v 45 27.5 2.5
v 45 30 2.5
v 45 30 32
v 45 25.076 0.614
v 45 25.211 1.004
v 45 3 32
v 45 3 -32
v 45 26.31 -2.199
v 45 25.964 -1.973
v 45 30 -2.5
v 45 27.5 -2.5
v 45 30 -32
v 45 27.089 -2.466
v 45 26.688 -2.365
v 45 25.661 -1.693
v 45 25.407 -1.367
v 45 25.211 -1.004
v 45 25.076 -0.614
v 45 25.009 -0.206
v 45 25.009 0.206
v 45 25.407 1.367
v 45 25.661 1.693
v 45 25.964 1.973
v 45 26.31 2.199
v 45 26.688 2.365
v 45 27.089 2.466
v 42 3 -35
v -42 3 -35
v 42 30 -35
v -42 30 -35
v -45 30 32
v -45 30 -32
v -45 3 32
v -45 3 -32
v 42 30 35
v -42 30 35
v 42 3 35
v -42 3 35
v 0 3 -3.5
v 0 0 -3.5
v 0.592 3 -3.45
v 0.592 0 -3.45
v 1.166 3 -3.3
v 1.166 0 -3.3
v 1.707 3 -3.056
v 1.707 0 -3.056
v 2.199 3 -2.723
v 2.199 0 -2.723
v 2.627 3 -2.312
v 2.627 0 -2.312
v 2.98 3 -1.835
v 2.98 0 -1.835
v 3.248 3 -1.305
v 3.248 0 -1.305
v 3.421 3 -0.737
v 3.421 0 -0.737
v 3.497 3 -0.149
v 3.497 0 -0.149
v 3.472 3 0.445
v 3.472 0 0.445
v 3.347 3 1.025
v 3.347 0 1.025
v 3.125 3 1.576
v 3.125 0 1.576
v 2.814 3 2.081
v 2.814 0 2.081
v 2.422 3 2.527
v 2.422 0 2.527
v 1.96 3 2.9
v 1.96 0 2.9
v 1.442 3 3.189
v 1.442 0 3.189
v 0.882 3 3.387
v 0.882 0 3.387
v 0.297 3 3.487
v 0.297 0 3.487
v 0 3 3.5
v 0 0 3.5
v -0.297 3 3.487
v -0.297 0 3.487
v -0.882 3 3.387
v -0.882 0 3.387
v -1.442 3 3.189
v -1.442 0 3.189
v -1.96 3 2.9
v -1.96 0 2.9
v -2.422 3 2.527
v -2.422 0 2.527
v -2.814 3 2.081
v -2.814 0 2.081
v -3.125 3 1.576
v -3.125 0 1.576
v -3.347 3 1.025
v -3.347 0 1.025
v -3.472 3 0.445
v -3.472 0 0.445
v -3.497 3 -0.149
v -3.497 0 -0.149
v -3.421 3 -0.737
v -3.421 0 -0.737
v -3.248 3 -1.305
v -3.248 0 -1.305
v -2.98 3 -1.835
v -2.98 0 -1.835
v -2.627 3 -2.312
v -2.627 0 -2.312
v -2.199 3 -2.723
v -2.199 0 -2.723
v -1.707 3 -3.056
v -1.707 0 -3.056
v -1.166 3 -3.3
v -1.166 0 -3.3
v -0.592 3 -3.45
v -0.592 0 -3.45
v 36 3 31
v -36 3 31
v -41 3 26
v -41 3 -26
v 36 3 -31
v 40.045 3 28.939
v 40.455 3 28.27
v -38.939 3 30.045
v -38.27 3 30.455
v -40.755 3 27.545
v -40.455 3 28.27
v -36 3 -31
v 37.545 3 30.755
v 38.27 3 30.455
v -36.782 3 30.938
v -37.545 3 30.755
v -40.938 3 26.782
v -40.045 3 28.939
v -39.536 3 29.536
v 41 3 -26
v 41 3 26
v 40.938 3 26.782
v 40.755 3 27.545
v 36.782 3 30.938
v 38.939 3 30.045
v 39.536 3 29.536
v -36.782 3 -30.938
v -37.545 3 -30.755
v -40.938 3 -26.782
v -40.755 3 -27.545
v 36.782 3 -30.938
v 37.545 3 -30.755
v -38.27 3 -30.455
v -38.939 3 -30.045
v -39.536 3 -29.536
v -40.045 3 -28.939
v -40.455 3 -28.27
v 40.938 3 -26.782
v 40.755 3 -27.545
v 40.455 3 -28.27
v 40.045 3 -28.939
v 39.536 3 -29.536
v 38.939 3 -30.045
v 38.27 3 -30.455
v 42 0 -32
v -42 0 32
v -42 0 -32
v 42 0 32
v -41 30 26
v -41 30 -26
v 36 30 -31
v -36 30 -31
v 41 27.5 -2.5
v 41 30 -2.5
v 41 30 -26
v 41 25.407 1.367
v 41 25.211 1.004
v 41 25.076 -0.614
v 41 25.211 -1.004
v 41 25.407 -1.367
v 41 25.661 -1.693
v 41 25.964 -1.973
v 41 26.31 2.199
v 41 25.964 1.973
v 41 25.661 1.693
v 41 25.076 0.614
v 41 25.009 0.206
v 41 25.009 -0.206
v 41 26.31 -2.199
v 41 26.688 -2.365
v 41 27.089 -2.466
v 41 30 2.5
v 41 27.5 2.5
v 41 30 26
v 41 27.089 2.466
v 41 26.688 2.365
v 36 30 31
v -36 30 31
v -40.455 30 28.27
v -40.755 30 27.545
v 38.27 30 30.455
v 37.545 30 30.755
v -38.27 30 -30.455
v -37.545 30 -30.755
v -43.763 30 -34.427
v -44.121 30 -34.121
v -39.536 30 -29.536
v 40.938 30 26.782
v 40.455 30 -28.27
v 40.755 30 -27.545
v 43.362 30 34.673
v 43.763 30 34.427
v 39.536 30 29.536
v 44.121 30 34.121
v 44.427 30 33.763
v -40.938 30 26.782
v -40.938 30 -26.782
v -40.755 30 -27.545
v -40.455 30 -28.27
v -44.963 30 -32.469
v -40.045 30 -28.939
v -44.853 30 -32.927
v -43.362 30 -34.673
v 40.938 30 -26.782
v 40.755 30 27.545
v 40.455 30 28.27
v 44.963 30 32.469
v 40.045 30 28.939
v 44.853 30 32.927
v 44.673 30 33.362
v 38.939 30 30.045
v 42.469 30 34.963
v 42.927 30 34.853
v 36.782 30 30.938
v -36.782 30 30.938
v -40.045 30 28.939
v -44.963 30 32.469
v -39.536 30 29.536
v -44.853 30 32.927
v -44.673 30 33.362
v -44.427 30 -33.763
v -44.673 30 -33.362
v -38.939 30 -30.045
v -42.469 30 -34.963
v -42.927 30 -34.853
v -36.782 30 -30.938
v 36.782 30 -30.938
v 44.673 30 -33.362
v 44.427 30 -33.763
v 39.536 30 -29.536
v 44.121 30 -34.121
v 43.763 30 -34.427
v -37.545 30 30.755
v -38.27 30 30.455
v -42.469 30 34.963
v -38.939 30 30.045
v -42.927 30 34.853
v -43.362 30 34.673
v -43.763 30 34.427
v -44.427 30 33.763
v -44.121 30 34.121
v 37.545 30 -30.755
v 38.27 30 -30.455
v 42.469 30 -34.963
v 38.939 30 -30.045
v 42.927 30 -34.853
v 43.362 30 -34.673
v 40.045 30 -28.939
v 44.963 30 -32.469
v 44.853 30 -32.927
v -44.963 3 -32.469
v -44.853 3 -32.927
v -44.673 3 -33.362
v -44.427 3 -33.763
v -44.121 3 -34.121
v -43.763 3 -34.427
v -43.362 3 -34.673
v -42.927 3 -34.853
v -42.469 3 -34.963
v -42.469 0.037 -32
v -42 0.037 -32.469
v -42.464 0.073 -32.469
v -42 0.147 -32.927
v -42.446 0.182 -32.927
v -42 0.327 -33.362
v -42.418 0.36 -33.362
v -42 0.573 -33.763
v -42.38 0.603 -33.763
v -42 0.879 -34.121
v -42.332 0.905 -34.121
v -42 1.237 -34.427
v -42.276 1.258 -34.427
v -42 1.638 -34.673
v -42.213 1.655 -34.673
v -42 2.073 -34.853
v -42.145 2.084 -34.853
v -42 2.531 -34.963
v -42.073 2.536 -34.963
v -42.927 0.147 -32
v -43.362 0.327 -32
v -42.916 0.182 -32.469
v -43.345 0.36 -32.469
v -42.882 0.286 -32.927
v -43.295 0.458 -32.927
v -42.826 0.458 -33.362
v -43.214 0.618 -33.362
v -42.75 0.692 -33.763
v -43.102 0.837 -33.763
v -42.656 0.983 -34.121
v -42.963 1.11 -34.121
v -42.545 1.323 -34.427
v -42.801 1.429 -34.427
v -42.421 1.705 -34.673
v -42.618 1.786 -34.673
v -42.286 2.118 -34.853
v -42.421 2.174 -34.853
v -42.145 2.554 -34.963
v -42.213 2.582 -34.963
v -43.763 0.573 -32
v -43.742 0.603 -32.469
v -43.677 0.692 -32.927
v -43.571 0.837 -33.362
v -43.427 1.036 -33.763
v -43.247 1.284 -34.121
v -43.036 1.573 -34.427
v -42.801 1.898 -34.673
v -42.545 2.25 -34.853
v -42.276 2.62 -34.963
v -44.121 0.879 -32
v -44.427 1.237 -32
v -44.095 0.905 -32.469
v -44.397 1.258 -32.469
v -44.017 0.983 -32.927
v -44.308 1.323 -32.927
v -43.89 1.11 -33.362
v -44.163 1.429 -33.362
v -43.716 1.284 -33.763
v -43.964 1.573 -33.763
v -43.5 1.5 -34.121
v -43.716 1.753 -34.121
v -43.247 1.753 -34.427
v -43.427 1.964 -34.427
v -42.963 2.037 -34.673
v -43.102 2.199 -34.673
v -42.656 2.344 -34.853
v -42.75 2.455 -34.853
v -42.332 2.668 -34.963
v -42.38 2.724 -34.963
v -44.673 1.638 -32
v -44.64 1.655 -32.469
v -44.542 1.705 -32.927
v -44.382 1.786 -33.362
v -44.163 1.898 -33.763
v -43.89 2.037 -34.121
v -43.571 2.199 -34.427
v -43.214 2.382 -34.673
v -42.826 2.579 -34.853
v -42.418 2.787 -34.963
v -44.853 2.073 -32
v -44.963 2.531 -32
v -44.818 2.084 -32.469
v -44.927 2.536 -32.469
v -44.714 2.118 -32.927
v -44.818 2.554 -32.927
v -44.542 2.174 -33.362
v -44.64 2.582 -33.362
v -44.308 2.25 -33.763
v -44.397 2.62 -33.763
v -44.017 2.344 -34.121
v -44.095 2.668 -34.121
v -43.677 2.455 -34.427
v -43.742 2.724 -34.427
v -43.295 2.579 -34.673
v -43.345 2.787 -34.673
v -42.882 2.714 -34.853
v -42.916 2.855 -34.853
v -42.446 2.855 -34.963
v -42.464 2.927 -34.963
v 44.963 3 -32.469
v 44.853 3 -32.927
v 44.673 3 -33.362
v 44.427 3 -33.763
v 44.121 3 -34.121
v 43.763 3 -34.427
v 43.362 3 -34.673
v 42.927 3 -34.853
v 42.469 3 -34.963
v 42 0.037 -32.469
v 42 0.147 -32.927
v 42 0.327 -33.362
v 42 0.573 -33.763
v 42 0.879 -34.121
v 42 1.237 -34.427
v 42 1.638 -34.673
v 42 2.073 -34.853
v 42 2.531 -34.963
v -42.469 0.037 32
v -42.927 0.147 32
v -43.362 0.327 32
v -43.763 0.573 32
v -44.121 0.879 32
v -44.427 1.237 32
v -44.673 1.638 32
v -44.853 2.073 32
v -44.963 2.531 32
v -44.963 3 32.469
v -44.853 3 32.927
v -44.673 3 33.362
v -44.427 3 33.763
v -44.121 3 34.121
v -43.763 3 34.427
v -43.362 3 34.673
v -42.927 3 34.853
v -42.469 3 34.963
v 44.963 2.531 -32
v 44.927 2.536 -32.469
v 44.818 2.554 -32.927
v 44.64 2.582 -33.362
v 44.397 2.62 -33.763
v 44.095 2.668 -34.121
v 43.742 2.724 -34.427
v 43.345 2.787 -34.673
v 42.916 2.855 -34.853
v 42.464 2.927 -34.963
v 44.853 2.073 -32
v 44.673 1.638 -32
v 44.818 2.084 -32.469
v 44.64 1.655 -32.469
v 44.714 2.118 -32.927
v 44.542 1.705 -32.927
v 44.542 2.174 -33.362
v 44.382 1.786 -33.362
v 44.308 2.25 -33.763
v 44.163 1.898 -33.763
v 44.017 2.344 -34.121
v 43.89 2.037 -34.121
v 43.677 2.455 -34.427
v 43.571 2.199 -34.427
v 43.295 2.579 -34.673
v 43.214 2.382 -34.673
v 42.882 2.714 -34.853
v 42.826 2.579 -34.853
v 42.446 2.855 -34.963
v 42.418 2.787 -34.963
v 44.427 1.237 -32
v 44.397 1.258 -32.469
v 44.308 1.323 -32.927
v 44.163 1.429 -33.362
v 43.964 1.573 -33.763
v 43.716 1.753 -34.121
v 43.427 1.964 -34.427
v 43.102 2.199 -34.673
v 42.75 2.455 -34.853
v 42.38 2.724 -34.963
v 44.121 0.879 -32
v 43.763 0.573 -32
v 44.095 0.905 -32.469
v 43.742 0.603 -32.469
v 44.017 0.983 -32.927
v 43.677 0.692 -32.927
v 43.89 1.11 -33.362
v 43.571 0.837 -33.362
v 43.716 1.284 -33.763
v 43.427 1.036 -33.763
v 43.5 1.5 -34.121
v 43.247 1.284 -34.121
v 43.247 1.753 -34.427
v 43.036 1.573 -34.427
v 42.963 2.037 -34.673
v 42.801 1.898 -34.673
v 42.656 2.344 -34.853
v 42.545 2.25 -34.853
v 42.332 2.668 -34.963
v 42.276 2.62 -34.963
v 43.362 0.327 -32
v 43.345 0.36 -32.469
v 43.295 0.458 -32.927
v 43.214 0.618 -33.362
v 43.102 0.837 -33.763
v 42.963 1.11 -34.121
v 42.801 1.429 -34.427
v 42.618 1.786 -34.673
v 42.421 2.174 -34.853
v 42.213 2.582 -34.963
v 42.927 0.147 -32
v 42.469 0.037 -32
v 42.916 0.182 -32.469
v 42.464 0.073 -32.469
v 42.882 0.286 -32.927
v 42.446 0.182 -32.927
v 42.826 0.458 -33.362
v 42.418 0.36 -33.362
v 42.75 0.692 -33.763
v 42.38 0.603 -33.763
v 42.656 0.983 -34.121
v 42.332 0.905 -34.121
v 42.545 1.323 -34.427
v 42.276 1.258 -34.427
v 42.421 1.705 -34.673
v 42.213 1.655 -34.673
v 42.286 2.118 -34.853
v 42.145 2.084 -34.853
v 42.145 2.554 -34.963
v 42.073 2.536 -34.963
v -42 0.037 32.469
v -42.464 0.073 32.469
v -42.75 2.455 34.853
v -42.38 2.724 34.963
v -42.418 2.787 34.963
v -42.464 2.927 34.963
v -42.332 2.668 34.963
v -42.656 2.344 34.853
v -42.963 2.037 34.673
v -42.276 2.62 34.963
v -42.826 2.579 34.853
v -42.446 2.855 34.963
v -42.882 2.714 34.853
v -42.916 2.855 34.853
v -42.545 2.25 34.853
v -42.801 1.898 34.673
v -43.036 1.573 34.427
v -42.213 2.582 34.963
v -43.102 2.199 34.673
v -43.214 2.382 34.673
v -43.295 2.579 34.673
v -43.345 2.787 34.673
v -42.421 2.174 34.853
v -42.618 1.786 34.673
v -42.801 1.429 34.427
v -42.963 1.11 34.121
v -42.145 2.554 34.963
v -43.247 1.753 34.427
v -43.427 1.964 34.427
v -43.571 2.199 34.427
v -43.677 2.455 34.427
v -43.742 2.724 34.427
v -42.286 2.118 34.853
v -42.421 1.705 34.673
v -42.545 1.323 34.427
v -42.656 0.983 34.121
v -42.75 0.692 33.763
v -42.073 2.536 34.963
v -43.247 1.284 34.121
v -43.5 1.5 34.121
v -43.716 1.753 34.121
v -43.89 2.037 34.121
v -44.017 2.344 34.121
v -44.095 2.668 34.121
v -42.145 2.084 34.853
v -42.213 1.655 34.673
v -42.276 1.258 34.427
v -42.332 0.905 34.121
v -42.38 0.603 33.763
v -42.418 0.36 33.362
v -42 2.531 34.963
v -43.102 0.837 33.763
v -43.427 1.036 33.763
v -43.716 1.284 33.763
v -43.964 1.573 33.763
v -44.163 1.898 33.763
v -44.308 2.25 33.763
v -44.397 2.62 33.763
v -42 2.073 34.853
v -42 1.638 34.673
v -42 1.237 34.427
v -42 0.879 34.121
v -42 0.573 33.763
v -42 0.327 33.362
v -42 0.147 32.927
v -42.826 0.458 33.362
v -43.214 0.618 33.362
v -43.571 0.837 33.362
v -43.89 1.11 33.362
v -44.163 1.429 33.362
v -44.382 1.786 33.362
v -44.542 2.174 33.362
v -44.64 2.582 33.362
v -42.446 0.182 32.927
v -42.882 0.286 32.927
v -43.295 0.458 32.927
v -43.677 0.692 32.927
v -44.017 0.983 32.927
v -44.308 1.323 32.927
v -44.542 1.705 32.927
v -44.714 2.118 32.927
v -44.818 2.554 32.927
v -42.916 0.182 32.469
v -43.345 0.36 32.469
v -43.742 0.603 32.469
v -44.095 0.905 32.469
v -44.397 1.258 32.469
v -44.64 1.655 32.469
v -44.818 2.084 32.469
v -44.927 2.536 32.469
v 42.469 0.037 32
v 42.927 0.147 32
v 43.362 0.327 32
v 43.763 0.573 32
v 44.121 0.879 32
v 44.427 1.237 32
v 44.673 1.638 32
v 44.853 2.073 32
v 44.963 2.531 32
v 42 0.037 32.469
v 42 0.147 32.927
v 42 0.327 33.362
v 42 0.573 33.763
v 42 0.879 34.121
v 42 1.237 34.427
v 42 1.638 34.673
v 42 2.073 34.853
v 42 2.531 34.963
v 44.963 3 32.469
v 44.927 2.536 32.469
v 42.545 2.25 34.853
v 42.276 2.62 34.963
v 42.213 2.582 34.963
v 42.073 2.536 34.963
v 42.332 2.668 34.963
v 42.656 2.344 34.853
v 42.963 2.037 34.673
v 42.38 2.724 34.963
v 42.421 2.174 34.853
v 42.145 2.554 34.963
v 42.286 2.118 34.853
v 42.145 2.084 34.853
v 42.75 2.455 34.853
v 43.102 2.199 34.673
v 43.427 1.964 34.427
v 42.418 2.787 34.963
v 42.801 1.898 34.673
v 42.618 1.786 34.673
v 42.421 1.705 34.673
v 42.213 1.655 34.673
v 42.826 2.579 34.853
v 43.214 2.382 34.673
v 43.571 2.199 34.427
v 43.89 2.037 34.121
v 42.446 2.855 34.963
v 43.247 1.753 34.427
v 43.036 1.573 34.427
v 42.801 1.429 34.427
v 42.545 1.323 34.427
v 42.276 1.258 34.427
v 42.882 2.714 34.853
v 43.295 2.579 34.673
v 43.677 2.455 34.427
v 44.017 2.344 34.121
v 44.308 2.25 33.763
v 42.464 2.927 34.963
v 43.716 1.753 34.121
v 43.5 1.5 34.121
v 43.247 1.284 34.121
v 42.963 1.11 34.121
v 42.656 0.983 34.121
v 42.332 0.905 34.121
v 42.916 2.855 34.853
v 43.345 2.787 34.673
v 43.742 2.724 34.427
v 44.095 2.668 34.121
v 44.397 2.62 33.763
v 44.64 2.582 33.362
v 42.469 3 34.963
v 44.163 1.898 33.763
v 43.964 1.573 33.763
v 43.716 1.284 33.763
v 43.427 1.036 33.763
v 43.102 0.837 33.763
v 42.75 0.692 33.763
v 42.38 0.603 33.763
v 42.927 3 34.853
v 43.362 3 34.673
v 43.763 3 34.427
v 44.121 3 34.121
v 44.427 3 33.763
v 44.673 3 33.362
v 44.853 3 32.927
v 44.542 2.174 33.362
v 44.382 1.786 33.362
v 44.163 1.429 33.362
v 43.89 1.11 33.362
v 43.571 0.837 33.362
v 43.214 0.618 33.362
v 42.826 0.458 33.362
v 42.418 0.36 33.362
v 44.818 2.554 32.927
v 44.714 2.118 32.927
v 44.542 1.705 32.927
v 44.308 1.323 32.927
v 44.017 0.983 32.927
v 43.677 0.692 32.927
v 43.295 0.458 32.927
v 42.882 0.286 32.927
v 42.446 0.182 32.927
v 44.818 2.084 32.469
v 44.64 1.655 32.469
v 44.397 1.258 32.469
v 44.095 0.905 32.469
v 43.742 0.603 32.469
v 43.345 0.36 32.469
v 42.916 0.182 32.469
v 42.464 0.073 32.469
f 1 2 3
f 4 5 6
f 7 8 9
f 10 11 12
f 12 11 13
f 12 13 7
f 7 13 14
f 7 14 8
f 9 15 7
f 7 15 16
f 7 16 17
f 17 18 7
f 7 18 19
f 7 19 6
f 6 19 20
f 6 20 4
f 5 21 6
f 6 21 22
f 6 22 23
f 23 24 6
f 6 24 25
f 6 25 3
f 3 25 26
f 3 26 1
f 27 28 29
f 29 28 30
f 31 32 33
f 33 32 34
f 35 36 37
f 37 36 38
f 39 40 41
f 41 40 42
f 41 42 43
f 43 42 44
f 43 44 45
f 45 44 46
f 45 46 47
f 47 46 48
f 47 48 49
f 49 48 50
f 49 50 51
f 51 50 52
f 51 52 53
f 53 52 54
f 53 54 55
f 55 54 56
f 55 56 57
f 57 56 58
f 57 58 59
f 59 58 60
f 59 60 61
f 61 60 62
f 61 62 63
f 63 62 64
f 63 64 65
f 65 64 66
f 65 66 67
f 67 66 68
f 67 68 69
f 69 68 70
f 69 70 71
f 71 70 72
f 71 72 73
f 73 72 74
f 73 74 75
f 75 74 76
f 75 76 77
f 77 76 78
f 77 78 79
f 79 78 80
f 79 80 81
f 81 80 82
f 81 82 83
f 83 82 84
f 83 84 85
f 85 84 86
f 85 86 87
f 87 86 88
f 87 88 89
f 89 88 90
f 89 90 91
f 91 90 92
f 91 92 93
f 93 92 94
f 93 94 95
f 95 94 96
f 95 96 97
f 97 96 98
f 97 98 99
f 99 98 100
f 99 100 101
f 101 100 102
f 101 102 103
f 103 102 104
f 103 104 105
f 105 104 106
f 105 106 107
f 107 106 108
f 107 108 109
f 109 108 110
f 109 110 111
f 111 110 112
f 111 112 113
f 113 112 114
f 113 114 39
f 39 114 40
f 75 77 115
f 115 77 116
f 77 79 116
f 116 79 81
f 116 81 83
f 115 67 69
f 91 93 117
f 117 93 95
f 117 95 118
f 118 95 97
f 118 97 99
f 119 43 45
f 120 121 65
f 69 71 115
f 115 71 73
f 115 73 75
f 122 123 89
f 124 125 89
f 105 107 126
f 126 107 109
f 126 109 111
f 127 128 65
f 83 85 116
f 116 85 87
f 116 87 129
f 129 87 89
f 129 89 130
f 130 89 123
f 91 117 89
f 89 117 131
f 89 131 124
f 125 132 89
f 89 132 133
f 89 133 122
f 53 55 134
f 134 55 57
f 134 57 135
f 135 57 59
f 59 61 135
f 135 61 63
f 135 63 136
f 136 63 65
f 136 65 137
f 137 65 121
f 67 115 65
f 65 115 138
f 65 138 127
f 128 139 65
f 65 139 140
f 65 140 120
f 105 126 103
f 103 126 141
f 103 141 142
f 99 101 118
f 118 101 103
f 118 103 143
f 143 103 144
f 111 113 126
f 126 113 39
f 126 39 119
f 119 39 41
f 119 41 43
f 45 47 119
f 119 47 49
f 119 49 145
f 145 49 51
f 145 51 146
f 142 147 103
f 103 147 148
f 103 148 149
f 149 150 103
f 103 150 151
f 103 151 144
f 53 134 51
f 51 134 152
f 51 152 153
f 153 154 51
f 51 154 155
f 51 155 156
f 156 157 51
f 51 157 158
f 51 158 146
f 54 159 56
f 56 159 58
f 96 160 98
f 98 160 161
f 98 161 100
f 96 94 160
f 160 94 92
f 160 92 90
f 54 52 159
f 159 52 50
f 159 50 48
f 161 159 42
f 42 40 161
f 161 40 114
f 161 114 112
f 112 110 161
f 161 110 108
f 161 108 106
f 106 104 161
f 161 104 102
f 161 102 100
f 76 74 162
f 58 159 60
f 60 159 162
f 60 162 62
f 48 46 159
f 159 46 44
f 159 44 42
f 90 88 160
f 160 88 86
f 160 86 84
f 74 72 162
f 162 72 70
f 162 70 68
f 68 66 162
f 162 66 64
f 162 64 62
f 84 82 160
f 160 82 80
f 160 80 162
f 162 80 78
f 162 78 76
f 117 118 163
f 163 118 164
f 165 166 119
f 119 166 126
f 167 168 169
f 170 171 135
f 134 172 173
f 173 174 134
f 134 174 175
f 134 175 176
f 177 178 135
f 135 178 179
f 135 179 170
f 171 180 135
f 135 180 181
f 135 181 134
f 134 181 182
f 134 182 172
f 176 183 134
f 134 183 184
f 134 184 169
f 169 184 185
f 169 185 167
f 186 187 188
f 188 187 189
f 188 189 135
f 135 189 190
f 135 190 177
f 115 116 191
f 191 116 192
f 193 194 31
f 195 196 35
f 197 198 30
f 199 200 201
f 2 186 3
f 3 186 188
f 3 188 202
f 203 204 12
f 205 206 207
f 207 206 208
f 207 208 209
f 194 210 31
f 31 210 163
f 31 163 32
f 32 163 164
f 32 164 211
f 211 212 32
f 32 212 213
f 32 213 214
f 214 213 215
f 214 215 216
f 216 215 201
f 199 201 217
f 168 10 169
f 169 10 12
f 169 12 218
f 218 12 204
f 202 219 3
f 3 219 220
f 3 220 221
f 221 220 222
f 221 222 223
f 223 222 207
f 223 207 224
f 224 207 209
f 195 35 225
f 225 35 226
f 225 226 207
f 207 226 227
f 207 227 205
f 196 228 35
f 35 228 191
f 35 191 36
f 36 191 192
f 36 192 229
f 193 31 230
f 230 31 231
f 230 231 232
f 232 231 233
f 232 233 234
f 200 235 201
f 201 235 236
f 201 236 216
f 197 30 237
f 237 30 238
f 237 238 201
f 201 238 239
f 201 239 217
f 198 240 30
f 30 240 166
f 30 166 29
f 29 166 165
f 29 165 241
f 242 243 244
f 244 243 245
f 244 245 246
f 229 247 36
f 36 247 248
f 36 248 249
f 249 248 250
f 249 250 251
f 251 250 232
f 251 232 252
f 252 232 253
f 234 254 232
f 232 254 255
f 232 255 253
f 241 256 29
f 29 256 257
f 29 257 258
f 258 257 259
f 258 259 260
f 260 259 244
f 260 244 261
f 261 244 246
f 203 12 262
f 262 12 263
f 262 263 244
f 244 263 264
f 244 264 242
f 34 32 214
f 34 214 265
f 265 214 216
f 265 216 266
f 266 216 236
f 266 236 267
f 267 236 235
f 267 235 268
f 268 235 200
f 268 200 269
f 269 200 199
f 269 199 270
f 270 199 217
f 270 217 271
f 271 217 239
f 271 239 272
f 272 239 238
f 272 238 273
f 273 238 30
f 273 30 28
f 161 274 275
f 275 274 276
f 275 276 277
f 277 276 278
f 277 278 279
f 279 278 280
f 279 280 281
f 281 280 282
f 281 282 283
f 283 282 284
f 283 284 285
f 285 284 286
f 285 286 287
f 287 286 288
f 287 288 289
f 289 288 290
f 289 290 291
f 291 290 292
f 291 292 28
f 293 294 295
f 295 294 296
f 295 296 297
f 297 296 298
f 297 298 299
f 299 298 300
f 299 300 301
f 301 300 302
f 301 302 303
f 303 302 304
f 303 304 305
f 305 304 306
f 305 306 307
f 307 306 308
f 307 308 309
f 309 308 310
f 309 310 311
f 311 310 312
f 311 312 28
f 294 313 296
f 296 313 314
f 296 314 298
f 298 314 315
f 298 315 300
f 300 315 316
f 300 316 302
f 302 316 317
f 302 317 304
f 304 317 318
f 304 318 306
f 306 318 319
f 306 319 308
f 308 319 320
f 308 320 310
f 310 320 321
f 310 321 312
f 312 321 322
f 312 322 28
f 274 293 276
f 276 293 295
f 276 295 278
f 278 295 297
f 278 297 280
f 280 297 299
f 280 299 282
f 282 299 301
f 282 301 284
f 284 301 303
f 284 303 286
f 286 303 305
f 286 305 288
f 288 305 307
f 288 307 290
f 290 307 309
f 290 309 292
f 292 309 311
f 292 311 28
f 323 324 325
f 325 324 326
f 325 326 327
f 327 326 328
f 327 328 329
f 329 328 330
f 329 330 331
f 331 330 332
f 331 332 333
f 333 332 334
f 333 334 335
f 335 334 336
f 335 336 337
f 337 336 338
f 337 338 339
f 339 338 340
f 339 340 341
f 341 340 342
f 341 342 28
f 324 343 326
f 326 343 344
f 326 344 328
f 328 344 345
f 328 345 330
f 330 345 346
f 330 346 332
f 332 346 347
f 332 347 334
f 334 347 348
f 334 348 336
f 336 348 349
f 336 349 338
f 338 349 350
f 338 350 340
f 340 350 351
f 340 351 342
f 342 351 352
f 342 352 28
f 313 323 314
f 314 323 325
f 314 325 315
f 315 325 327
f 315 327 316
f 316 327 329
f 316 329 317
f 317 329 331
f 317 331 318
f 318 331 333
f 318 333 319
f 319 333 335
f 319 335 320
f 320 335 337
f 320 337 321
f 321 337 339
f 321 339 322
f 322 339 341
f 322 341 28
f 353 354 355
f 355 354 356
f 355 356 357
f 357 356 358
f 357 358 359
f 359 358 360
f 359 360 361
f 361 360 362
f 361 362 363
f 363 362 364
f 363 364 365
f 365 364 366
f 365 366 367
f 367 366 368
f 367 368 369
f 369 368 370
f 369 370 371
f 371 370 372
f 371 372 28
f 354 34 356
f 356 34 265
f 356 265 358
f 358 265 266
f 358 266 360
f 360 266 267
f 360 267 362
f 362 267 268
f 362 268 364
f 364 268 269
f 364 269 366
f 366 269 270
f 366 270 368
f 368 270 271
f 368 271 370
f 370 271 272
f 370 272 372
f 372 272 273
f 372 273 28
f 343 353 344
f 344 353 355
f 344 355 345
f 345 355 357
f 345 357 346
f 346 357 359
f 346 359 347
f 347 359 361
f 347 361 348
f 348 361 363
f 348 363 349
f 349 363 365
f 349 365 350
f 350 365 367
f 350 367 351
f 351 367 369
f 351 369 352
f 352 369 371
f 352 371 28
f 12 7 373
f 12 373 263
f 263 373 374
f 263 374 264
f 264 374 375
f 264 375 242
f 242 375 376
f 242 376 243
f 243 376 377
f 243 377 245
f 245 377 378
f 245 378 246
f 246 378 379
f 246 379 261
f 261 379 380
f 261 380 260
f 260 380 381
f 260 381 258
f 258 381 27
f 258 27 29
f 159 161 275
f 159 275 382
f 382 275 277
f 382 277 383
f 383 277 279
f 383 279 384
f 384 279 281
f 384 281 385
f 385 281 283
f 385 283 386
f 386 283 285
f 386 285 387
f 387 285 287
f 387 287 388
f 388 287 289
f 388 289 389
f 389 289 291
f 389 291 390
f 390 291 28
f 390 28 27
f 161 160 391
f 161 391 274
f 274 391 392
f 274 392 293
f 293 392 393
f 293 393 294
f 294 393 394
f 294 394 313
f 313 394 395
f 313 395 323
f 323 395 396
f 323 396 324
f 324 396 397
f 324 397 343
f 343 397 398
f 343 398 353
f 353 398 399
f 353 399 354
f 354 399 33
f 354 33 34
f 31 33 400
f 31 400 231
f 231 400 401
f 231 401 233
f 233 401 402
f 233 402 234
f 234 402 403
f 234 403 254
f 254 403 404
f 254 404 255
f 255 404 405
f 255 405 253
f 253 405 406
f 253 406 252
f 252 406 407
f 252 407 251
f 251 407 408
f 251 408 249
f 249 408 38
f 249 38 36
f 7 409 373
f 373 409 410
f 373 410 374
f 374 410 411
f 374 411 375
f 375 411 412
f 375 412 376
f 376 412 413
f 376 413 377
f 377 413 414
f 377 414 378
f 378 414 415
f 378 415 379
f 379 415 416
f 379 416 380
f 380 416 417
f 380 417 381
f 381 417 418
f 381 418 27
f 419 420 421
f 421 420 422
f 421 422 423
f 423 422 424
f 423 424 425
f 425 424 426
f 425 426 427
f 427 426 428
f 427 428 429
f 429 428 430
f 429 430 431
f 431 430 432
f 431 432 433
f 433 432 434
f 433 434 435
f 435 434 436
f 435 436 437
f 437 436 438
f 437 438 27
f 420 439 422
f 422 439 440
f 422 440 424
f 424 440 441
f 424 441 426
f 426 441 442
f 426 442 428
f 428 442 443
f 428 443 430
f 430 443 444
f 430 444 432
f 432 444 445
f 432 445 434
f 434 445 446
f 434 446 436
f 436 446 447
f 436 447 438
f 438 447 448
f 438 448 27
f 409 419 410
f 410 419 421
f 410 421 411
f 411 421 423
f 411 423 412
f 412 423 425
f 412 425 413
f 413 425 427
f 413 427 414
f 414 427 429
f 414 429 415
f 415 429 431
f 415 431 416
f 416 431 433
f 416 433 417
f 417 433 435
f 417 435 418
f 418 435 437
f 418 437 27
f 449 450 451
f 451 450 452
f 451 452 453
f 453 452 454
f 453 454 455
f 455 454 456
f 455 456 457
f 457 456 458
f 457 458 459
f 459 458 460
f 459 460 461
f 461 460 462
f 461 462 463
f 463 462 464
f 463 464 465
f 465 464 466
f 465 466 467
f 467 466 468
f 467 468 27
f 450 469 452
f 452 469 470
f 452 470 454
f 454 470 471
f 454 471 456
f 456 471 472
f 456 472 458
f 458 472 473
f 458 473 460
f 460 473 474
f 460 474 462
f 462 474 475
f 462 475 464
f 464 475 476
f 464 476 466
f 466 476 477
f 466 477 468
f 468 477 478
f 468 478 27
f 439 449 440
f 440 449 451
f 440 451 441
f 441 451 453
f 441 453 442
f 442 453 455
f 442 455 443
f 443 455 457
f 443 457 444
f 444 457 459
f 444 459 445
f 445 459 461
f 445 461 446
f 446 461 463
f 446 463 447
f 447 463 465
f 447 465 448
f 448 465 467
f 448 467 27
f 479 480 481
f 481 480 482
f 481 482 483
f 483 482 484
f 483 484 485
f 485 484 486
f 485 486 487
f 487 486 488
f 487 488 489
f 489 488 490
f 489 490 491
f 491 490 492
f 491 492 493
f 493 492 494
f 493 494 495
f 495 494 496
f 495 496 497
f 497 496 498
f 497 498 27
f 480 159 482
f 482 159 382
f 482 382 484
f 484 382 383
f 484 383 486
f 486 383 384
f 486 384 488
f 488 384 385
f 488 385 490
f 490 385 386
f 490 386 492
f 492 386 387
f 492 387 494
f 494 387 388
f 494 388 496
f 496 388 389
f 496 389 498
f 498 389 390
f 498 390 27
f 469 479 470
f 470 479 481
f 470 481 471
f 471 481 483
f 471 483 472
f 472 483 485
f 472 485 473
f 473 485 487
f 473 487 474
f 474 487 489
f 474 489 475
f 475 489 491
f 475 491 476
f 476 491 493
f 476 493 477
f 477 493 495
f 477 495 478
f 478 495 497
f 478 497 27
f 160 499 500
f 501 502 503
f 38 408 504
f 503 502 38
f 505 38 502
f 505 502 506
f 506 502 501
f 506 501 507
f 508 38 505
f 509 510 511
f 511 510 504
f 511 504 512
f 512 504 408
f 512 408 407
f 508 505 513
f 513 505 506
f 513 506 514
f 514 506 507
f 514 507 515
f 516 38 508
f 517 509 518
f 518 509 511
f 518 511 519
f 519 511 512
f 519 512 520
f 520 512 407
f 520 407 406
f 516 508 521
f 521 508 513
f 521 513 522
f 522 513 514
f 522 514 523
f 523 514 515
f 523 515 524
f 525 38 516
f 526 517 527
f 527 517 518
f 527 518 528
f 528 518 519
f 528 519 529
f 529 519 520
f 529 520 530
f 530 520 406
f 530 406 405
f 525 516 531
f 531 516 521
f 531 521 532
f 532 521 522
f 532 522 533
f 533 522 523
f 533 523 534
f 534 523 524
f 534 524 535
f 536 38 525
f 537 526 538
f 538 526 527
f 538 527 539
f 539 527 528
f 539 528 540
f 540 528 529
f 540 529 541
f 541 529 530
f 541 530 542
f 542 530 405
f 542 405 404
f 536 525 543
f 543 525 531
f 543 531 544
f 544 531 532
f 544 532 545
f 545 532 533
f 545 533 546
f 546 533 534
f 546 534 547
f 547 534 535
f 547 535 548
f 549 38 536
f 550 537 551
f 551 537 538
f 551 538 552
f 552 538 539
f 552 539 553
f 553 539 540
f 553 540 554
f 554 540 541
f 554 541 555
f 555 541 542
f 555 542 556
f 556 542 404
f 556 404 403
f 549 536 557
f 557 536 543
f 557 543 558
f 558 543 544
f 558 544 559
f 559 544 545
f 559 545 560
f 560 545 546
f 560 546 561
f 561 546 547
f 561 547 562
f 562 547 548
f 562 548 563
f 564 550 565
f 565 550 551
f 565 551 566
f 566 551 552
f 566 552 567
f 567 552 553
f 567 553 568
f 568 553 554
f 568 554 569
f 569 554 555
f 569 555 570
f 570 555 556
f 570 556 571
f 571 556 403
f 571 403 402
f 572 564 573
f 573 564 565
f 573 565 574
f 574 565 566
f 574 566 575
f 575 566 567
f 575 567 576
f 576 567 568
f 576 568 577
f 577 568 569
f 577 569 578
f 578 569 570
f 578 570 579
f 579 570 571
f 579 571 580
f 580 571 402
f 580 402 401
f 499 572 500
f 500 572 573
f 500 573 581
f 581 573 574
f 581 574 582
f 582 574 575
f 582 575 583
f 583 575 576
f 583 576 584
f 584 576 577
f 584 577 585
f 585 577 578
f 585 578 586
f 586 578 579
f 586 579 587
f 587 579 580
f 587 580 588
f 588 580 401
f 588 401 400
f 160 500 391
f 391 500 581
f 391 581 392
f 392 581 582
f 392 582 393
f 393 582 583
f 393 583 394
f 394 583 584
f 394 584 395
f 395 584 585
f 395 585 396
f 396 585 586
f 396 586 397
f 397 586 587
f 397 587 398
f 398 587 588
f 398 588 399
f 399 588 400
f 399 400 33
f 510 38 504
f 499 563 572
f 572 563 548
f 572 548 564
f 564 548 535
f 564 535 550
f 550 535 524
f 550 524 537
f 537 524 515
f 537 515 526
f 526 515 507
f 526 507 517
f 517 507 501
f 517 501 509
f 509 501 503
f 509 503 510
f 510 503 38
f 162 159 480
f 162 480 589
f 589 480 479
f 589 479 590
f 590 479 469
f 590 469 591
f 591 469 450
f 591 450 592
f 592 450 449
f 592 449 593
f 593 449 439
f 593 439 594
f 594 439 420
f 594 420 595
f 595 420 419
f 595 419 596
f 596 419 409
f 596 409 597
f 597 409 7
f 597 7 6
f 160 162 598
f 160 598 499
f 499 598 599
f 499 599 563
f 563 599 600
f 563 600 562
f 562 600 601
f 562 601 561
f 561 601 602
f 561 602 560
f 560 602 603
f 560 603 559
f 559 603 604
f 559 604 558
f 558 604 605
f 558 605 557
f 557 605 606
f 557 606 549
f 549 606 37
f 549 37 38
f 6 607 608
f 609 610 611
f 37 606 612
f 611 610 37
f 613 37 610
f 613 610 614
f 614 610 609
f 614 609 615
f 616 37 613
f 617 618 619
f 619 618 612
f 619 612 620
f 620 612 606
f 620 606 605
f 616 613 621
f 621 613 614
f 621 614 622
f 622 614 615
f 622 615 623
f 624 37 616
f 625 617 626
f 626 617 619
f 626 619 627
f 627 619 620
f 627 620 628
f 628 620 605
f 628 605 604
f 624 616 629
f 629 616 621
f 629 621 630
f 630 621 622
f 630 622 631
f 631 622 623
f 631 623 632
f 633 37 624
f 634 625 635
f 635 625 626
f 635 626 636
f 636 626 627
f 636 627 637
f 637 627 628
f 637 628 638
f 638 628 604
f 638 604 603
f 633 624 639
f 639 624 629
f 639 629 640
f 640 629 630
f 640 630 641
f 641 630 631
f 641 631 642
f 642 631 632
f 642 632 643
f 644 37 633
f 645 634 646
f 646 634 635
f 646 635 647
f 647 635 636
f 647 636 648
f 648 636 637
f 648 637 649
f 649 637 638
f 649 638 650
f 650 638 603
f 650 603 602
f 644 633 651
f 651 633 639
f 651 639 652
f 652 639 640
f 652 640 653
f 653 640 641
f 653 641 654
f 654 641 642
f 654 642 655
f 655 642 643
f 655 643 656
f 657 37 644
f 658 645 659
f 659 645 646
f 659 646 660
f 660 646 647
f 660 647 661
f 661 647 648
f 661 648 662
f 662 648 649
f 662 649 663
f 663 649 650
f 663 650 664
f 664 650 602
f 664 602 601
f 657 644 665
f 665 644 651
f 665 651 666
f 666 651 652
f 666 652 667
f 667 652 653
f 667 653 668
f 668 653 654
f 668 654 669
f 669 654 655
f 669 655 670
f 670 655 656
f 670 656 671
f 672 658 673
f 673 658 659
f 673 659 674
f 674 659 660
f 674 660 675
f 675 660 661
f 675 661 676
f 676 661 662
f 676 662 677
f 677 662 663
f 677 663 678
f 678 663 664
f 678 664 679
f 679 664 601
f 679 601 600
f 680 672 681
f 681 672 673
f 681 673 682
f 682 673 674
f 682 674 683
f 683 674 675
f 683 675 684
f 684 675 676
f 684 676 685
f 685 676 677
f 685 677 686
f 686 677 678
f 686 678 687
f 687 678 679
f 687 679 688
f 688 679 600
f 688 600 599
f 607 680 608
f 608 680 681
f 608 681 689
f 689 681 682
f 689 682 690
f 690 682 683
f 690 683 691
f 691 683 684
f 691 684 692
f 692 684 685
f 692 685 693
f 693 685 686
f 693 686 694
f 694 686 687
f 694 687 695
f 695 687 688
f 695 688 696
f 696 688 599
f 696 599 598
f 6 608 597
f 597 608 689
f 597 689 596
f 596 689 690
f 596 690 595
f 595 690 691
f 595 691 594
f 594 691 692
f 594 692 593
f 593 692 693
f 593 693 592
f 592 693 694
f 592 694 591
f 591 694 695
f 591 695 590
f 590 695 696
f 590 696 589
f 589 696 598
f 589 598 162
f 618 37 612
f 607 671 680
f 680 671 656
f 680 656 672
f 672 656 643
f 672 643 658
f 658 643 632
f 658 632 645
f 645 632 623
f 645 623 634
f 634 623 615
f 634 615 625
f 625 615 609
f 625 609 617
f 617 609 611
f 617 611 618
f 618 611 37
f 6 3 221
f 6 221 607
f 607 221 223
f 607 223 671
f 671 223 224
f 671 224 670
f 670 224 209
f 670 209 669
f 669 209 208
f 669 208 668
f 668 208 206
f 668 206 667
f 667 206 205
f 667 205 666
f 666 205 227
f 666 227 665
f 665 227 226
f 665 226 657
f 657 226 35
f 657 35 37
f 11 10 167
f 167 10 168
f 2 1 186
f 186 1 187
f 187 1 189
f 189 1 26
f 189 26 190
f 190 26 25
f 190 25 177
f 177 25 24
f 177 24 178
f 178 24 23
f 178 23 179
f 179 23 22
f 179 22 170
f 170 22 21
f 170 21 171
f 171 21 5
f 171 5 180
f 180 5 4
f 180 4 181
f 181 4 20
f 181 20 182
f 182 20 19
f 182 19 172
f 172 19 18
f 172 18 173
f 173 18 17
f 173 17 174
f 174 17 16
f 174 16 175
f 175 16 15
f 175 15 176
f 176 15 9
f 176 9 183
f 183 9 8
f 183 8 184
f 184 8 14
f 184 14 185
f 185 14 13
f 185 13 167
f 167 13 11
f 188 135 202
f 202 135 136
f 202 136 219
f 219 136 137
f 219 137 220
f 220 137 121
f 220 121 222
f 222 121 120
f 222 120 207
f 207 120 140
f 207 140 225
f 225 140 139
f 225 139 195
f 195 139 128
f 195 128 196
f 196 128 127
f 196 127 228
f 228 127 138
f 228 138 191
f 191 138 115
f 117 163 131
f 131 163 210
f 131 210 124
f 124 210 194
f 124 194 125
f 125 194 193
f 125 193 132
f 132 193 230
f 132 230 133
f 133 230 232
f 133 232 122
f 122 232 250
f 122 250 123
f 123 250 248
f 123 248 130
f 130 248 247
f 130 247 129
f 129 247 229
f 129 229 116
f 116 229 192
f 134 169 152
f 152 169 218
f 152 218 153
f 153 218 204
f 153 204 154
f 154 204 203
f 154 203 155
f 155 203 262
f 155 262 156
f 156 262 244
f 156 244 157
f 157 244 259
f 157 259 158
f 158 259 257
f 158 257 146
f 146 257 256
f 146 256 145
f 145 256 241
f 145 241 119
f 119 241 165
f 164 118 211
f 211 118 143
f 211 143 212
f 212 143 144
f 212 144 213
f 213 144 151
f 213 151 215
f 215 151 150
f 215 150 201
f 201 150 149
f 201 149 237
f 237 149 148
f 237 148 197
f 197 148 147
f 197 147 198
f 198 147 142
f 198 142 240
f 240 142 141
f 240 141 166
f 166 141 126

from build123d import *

# Parameters (mm, degrees)
ESBO_O1_W                = 90
ESBO_O1_H                = 70
ESBO_O1_R                = 3.5
RESSALTO_EXTRUS_O1_DEPTH = 3
ESBO_O1_3_W              = 90
ESBO_O1_3_H              = 70
ESBO_O1_3_W_2            = 82
ESBO_O1_3_H_2            = 62
RESSALTO_EXTRUS_O2_DEPTH = 30
FILETE1_R                = 3
CORTE_EXTRUS_O1_REACH    = 103.119
FILETE2_R                = 5


with BuildPart() as part:
    # Esboço1 → Ressalto-extrusão1 (new body)
    with BuildSketch(Plane(origin=(0, 0, 0), x_dir=(1, 0, 0), z_dir=(0, 1, 0))):
        Rectangle(ESBO_O1_W, ESBO_O1_H)
        Circle(ESBO_O1_R, mode=Mode.SUBTRACT)
    extrude(amount=RESSALTO_EXTRUS_O1_DEPTH)

    # Esboço1<3> → Ressalto-extrusão2 (add)
    with BuildSketch(Plane(origin=(0, 0, 0), x_dir=(1, 0, 0), z_dir=(0, 1, 0))):
        Rectangle(ESBO_O1_3_W, ESBO_O1_3_H)
        Rectangle(ESBO_O1_3_W_2, ESBO_O1_3_H_2, mode=Mode.SUBTRACT)
    extrude(amount=RESSALTO_EXTRUS_O2_DEPTH)

    # Filete1
    filete1_edges = [part.edges().sort_by_distance(p)[0] for p in [
        (45, 15, 35),
        (45, 15, -35),
        (-45, 15, 35),
        (-45, 15, -35),
        (45, 0, 0),
        (0, 0, -35),
        (0, 0, 35),
        (-45, 0, 0),
    ]]
    fillet(filete1_edges, radius=FILETE1_R)

    # Esboço2 → Corte-extrusão1 (cut, up to next)
    with BuildSketch(Plane(origin=(45, 0, 0), x_dir=(0, 0, -1), z_dir=(1, 0, 0)), mode=Mode.PRIVATE) as corte_extrus_o1_sk1:
        with BuildLine():
            Line((-2.5, 27.5), (-2.5, 30))
            Line((-2.5, 30), (2.5, 30))
            Line((2.5, 30), (2.5, 27.5))
            ThreePointArc((2.5, 27.5), (0, 25), (-2.5, 27.5))
        make_face()
    corte_extrus_o1_tool1 = extrude(corte_extrus_o1_sk1.sketch, amount=-CORTE_EXTRUS_O1_REACH, mode=Mode.PRIVATE) & part.part
    add(corte_extrus_o1_tool1.solids().sort_by_distance((45, 27.733375, 0))[0], mode=Mode.SUBTRACT)

    # Filete2
    filete2_edges = [part.edges().sort_by_distance(p)[0] for p in [
        (41, 16.5, 31),
        (-41, 16.5, 31),
        (41, 16.5, -31),
        (-41, 16.5, -31),
    ]]
    fillet(filete2_edges, radius=FILETE2_R)


solid = part.part
